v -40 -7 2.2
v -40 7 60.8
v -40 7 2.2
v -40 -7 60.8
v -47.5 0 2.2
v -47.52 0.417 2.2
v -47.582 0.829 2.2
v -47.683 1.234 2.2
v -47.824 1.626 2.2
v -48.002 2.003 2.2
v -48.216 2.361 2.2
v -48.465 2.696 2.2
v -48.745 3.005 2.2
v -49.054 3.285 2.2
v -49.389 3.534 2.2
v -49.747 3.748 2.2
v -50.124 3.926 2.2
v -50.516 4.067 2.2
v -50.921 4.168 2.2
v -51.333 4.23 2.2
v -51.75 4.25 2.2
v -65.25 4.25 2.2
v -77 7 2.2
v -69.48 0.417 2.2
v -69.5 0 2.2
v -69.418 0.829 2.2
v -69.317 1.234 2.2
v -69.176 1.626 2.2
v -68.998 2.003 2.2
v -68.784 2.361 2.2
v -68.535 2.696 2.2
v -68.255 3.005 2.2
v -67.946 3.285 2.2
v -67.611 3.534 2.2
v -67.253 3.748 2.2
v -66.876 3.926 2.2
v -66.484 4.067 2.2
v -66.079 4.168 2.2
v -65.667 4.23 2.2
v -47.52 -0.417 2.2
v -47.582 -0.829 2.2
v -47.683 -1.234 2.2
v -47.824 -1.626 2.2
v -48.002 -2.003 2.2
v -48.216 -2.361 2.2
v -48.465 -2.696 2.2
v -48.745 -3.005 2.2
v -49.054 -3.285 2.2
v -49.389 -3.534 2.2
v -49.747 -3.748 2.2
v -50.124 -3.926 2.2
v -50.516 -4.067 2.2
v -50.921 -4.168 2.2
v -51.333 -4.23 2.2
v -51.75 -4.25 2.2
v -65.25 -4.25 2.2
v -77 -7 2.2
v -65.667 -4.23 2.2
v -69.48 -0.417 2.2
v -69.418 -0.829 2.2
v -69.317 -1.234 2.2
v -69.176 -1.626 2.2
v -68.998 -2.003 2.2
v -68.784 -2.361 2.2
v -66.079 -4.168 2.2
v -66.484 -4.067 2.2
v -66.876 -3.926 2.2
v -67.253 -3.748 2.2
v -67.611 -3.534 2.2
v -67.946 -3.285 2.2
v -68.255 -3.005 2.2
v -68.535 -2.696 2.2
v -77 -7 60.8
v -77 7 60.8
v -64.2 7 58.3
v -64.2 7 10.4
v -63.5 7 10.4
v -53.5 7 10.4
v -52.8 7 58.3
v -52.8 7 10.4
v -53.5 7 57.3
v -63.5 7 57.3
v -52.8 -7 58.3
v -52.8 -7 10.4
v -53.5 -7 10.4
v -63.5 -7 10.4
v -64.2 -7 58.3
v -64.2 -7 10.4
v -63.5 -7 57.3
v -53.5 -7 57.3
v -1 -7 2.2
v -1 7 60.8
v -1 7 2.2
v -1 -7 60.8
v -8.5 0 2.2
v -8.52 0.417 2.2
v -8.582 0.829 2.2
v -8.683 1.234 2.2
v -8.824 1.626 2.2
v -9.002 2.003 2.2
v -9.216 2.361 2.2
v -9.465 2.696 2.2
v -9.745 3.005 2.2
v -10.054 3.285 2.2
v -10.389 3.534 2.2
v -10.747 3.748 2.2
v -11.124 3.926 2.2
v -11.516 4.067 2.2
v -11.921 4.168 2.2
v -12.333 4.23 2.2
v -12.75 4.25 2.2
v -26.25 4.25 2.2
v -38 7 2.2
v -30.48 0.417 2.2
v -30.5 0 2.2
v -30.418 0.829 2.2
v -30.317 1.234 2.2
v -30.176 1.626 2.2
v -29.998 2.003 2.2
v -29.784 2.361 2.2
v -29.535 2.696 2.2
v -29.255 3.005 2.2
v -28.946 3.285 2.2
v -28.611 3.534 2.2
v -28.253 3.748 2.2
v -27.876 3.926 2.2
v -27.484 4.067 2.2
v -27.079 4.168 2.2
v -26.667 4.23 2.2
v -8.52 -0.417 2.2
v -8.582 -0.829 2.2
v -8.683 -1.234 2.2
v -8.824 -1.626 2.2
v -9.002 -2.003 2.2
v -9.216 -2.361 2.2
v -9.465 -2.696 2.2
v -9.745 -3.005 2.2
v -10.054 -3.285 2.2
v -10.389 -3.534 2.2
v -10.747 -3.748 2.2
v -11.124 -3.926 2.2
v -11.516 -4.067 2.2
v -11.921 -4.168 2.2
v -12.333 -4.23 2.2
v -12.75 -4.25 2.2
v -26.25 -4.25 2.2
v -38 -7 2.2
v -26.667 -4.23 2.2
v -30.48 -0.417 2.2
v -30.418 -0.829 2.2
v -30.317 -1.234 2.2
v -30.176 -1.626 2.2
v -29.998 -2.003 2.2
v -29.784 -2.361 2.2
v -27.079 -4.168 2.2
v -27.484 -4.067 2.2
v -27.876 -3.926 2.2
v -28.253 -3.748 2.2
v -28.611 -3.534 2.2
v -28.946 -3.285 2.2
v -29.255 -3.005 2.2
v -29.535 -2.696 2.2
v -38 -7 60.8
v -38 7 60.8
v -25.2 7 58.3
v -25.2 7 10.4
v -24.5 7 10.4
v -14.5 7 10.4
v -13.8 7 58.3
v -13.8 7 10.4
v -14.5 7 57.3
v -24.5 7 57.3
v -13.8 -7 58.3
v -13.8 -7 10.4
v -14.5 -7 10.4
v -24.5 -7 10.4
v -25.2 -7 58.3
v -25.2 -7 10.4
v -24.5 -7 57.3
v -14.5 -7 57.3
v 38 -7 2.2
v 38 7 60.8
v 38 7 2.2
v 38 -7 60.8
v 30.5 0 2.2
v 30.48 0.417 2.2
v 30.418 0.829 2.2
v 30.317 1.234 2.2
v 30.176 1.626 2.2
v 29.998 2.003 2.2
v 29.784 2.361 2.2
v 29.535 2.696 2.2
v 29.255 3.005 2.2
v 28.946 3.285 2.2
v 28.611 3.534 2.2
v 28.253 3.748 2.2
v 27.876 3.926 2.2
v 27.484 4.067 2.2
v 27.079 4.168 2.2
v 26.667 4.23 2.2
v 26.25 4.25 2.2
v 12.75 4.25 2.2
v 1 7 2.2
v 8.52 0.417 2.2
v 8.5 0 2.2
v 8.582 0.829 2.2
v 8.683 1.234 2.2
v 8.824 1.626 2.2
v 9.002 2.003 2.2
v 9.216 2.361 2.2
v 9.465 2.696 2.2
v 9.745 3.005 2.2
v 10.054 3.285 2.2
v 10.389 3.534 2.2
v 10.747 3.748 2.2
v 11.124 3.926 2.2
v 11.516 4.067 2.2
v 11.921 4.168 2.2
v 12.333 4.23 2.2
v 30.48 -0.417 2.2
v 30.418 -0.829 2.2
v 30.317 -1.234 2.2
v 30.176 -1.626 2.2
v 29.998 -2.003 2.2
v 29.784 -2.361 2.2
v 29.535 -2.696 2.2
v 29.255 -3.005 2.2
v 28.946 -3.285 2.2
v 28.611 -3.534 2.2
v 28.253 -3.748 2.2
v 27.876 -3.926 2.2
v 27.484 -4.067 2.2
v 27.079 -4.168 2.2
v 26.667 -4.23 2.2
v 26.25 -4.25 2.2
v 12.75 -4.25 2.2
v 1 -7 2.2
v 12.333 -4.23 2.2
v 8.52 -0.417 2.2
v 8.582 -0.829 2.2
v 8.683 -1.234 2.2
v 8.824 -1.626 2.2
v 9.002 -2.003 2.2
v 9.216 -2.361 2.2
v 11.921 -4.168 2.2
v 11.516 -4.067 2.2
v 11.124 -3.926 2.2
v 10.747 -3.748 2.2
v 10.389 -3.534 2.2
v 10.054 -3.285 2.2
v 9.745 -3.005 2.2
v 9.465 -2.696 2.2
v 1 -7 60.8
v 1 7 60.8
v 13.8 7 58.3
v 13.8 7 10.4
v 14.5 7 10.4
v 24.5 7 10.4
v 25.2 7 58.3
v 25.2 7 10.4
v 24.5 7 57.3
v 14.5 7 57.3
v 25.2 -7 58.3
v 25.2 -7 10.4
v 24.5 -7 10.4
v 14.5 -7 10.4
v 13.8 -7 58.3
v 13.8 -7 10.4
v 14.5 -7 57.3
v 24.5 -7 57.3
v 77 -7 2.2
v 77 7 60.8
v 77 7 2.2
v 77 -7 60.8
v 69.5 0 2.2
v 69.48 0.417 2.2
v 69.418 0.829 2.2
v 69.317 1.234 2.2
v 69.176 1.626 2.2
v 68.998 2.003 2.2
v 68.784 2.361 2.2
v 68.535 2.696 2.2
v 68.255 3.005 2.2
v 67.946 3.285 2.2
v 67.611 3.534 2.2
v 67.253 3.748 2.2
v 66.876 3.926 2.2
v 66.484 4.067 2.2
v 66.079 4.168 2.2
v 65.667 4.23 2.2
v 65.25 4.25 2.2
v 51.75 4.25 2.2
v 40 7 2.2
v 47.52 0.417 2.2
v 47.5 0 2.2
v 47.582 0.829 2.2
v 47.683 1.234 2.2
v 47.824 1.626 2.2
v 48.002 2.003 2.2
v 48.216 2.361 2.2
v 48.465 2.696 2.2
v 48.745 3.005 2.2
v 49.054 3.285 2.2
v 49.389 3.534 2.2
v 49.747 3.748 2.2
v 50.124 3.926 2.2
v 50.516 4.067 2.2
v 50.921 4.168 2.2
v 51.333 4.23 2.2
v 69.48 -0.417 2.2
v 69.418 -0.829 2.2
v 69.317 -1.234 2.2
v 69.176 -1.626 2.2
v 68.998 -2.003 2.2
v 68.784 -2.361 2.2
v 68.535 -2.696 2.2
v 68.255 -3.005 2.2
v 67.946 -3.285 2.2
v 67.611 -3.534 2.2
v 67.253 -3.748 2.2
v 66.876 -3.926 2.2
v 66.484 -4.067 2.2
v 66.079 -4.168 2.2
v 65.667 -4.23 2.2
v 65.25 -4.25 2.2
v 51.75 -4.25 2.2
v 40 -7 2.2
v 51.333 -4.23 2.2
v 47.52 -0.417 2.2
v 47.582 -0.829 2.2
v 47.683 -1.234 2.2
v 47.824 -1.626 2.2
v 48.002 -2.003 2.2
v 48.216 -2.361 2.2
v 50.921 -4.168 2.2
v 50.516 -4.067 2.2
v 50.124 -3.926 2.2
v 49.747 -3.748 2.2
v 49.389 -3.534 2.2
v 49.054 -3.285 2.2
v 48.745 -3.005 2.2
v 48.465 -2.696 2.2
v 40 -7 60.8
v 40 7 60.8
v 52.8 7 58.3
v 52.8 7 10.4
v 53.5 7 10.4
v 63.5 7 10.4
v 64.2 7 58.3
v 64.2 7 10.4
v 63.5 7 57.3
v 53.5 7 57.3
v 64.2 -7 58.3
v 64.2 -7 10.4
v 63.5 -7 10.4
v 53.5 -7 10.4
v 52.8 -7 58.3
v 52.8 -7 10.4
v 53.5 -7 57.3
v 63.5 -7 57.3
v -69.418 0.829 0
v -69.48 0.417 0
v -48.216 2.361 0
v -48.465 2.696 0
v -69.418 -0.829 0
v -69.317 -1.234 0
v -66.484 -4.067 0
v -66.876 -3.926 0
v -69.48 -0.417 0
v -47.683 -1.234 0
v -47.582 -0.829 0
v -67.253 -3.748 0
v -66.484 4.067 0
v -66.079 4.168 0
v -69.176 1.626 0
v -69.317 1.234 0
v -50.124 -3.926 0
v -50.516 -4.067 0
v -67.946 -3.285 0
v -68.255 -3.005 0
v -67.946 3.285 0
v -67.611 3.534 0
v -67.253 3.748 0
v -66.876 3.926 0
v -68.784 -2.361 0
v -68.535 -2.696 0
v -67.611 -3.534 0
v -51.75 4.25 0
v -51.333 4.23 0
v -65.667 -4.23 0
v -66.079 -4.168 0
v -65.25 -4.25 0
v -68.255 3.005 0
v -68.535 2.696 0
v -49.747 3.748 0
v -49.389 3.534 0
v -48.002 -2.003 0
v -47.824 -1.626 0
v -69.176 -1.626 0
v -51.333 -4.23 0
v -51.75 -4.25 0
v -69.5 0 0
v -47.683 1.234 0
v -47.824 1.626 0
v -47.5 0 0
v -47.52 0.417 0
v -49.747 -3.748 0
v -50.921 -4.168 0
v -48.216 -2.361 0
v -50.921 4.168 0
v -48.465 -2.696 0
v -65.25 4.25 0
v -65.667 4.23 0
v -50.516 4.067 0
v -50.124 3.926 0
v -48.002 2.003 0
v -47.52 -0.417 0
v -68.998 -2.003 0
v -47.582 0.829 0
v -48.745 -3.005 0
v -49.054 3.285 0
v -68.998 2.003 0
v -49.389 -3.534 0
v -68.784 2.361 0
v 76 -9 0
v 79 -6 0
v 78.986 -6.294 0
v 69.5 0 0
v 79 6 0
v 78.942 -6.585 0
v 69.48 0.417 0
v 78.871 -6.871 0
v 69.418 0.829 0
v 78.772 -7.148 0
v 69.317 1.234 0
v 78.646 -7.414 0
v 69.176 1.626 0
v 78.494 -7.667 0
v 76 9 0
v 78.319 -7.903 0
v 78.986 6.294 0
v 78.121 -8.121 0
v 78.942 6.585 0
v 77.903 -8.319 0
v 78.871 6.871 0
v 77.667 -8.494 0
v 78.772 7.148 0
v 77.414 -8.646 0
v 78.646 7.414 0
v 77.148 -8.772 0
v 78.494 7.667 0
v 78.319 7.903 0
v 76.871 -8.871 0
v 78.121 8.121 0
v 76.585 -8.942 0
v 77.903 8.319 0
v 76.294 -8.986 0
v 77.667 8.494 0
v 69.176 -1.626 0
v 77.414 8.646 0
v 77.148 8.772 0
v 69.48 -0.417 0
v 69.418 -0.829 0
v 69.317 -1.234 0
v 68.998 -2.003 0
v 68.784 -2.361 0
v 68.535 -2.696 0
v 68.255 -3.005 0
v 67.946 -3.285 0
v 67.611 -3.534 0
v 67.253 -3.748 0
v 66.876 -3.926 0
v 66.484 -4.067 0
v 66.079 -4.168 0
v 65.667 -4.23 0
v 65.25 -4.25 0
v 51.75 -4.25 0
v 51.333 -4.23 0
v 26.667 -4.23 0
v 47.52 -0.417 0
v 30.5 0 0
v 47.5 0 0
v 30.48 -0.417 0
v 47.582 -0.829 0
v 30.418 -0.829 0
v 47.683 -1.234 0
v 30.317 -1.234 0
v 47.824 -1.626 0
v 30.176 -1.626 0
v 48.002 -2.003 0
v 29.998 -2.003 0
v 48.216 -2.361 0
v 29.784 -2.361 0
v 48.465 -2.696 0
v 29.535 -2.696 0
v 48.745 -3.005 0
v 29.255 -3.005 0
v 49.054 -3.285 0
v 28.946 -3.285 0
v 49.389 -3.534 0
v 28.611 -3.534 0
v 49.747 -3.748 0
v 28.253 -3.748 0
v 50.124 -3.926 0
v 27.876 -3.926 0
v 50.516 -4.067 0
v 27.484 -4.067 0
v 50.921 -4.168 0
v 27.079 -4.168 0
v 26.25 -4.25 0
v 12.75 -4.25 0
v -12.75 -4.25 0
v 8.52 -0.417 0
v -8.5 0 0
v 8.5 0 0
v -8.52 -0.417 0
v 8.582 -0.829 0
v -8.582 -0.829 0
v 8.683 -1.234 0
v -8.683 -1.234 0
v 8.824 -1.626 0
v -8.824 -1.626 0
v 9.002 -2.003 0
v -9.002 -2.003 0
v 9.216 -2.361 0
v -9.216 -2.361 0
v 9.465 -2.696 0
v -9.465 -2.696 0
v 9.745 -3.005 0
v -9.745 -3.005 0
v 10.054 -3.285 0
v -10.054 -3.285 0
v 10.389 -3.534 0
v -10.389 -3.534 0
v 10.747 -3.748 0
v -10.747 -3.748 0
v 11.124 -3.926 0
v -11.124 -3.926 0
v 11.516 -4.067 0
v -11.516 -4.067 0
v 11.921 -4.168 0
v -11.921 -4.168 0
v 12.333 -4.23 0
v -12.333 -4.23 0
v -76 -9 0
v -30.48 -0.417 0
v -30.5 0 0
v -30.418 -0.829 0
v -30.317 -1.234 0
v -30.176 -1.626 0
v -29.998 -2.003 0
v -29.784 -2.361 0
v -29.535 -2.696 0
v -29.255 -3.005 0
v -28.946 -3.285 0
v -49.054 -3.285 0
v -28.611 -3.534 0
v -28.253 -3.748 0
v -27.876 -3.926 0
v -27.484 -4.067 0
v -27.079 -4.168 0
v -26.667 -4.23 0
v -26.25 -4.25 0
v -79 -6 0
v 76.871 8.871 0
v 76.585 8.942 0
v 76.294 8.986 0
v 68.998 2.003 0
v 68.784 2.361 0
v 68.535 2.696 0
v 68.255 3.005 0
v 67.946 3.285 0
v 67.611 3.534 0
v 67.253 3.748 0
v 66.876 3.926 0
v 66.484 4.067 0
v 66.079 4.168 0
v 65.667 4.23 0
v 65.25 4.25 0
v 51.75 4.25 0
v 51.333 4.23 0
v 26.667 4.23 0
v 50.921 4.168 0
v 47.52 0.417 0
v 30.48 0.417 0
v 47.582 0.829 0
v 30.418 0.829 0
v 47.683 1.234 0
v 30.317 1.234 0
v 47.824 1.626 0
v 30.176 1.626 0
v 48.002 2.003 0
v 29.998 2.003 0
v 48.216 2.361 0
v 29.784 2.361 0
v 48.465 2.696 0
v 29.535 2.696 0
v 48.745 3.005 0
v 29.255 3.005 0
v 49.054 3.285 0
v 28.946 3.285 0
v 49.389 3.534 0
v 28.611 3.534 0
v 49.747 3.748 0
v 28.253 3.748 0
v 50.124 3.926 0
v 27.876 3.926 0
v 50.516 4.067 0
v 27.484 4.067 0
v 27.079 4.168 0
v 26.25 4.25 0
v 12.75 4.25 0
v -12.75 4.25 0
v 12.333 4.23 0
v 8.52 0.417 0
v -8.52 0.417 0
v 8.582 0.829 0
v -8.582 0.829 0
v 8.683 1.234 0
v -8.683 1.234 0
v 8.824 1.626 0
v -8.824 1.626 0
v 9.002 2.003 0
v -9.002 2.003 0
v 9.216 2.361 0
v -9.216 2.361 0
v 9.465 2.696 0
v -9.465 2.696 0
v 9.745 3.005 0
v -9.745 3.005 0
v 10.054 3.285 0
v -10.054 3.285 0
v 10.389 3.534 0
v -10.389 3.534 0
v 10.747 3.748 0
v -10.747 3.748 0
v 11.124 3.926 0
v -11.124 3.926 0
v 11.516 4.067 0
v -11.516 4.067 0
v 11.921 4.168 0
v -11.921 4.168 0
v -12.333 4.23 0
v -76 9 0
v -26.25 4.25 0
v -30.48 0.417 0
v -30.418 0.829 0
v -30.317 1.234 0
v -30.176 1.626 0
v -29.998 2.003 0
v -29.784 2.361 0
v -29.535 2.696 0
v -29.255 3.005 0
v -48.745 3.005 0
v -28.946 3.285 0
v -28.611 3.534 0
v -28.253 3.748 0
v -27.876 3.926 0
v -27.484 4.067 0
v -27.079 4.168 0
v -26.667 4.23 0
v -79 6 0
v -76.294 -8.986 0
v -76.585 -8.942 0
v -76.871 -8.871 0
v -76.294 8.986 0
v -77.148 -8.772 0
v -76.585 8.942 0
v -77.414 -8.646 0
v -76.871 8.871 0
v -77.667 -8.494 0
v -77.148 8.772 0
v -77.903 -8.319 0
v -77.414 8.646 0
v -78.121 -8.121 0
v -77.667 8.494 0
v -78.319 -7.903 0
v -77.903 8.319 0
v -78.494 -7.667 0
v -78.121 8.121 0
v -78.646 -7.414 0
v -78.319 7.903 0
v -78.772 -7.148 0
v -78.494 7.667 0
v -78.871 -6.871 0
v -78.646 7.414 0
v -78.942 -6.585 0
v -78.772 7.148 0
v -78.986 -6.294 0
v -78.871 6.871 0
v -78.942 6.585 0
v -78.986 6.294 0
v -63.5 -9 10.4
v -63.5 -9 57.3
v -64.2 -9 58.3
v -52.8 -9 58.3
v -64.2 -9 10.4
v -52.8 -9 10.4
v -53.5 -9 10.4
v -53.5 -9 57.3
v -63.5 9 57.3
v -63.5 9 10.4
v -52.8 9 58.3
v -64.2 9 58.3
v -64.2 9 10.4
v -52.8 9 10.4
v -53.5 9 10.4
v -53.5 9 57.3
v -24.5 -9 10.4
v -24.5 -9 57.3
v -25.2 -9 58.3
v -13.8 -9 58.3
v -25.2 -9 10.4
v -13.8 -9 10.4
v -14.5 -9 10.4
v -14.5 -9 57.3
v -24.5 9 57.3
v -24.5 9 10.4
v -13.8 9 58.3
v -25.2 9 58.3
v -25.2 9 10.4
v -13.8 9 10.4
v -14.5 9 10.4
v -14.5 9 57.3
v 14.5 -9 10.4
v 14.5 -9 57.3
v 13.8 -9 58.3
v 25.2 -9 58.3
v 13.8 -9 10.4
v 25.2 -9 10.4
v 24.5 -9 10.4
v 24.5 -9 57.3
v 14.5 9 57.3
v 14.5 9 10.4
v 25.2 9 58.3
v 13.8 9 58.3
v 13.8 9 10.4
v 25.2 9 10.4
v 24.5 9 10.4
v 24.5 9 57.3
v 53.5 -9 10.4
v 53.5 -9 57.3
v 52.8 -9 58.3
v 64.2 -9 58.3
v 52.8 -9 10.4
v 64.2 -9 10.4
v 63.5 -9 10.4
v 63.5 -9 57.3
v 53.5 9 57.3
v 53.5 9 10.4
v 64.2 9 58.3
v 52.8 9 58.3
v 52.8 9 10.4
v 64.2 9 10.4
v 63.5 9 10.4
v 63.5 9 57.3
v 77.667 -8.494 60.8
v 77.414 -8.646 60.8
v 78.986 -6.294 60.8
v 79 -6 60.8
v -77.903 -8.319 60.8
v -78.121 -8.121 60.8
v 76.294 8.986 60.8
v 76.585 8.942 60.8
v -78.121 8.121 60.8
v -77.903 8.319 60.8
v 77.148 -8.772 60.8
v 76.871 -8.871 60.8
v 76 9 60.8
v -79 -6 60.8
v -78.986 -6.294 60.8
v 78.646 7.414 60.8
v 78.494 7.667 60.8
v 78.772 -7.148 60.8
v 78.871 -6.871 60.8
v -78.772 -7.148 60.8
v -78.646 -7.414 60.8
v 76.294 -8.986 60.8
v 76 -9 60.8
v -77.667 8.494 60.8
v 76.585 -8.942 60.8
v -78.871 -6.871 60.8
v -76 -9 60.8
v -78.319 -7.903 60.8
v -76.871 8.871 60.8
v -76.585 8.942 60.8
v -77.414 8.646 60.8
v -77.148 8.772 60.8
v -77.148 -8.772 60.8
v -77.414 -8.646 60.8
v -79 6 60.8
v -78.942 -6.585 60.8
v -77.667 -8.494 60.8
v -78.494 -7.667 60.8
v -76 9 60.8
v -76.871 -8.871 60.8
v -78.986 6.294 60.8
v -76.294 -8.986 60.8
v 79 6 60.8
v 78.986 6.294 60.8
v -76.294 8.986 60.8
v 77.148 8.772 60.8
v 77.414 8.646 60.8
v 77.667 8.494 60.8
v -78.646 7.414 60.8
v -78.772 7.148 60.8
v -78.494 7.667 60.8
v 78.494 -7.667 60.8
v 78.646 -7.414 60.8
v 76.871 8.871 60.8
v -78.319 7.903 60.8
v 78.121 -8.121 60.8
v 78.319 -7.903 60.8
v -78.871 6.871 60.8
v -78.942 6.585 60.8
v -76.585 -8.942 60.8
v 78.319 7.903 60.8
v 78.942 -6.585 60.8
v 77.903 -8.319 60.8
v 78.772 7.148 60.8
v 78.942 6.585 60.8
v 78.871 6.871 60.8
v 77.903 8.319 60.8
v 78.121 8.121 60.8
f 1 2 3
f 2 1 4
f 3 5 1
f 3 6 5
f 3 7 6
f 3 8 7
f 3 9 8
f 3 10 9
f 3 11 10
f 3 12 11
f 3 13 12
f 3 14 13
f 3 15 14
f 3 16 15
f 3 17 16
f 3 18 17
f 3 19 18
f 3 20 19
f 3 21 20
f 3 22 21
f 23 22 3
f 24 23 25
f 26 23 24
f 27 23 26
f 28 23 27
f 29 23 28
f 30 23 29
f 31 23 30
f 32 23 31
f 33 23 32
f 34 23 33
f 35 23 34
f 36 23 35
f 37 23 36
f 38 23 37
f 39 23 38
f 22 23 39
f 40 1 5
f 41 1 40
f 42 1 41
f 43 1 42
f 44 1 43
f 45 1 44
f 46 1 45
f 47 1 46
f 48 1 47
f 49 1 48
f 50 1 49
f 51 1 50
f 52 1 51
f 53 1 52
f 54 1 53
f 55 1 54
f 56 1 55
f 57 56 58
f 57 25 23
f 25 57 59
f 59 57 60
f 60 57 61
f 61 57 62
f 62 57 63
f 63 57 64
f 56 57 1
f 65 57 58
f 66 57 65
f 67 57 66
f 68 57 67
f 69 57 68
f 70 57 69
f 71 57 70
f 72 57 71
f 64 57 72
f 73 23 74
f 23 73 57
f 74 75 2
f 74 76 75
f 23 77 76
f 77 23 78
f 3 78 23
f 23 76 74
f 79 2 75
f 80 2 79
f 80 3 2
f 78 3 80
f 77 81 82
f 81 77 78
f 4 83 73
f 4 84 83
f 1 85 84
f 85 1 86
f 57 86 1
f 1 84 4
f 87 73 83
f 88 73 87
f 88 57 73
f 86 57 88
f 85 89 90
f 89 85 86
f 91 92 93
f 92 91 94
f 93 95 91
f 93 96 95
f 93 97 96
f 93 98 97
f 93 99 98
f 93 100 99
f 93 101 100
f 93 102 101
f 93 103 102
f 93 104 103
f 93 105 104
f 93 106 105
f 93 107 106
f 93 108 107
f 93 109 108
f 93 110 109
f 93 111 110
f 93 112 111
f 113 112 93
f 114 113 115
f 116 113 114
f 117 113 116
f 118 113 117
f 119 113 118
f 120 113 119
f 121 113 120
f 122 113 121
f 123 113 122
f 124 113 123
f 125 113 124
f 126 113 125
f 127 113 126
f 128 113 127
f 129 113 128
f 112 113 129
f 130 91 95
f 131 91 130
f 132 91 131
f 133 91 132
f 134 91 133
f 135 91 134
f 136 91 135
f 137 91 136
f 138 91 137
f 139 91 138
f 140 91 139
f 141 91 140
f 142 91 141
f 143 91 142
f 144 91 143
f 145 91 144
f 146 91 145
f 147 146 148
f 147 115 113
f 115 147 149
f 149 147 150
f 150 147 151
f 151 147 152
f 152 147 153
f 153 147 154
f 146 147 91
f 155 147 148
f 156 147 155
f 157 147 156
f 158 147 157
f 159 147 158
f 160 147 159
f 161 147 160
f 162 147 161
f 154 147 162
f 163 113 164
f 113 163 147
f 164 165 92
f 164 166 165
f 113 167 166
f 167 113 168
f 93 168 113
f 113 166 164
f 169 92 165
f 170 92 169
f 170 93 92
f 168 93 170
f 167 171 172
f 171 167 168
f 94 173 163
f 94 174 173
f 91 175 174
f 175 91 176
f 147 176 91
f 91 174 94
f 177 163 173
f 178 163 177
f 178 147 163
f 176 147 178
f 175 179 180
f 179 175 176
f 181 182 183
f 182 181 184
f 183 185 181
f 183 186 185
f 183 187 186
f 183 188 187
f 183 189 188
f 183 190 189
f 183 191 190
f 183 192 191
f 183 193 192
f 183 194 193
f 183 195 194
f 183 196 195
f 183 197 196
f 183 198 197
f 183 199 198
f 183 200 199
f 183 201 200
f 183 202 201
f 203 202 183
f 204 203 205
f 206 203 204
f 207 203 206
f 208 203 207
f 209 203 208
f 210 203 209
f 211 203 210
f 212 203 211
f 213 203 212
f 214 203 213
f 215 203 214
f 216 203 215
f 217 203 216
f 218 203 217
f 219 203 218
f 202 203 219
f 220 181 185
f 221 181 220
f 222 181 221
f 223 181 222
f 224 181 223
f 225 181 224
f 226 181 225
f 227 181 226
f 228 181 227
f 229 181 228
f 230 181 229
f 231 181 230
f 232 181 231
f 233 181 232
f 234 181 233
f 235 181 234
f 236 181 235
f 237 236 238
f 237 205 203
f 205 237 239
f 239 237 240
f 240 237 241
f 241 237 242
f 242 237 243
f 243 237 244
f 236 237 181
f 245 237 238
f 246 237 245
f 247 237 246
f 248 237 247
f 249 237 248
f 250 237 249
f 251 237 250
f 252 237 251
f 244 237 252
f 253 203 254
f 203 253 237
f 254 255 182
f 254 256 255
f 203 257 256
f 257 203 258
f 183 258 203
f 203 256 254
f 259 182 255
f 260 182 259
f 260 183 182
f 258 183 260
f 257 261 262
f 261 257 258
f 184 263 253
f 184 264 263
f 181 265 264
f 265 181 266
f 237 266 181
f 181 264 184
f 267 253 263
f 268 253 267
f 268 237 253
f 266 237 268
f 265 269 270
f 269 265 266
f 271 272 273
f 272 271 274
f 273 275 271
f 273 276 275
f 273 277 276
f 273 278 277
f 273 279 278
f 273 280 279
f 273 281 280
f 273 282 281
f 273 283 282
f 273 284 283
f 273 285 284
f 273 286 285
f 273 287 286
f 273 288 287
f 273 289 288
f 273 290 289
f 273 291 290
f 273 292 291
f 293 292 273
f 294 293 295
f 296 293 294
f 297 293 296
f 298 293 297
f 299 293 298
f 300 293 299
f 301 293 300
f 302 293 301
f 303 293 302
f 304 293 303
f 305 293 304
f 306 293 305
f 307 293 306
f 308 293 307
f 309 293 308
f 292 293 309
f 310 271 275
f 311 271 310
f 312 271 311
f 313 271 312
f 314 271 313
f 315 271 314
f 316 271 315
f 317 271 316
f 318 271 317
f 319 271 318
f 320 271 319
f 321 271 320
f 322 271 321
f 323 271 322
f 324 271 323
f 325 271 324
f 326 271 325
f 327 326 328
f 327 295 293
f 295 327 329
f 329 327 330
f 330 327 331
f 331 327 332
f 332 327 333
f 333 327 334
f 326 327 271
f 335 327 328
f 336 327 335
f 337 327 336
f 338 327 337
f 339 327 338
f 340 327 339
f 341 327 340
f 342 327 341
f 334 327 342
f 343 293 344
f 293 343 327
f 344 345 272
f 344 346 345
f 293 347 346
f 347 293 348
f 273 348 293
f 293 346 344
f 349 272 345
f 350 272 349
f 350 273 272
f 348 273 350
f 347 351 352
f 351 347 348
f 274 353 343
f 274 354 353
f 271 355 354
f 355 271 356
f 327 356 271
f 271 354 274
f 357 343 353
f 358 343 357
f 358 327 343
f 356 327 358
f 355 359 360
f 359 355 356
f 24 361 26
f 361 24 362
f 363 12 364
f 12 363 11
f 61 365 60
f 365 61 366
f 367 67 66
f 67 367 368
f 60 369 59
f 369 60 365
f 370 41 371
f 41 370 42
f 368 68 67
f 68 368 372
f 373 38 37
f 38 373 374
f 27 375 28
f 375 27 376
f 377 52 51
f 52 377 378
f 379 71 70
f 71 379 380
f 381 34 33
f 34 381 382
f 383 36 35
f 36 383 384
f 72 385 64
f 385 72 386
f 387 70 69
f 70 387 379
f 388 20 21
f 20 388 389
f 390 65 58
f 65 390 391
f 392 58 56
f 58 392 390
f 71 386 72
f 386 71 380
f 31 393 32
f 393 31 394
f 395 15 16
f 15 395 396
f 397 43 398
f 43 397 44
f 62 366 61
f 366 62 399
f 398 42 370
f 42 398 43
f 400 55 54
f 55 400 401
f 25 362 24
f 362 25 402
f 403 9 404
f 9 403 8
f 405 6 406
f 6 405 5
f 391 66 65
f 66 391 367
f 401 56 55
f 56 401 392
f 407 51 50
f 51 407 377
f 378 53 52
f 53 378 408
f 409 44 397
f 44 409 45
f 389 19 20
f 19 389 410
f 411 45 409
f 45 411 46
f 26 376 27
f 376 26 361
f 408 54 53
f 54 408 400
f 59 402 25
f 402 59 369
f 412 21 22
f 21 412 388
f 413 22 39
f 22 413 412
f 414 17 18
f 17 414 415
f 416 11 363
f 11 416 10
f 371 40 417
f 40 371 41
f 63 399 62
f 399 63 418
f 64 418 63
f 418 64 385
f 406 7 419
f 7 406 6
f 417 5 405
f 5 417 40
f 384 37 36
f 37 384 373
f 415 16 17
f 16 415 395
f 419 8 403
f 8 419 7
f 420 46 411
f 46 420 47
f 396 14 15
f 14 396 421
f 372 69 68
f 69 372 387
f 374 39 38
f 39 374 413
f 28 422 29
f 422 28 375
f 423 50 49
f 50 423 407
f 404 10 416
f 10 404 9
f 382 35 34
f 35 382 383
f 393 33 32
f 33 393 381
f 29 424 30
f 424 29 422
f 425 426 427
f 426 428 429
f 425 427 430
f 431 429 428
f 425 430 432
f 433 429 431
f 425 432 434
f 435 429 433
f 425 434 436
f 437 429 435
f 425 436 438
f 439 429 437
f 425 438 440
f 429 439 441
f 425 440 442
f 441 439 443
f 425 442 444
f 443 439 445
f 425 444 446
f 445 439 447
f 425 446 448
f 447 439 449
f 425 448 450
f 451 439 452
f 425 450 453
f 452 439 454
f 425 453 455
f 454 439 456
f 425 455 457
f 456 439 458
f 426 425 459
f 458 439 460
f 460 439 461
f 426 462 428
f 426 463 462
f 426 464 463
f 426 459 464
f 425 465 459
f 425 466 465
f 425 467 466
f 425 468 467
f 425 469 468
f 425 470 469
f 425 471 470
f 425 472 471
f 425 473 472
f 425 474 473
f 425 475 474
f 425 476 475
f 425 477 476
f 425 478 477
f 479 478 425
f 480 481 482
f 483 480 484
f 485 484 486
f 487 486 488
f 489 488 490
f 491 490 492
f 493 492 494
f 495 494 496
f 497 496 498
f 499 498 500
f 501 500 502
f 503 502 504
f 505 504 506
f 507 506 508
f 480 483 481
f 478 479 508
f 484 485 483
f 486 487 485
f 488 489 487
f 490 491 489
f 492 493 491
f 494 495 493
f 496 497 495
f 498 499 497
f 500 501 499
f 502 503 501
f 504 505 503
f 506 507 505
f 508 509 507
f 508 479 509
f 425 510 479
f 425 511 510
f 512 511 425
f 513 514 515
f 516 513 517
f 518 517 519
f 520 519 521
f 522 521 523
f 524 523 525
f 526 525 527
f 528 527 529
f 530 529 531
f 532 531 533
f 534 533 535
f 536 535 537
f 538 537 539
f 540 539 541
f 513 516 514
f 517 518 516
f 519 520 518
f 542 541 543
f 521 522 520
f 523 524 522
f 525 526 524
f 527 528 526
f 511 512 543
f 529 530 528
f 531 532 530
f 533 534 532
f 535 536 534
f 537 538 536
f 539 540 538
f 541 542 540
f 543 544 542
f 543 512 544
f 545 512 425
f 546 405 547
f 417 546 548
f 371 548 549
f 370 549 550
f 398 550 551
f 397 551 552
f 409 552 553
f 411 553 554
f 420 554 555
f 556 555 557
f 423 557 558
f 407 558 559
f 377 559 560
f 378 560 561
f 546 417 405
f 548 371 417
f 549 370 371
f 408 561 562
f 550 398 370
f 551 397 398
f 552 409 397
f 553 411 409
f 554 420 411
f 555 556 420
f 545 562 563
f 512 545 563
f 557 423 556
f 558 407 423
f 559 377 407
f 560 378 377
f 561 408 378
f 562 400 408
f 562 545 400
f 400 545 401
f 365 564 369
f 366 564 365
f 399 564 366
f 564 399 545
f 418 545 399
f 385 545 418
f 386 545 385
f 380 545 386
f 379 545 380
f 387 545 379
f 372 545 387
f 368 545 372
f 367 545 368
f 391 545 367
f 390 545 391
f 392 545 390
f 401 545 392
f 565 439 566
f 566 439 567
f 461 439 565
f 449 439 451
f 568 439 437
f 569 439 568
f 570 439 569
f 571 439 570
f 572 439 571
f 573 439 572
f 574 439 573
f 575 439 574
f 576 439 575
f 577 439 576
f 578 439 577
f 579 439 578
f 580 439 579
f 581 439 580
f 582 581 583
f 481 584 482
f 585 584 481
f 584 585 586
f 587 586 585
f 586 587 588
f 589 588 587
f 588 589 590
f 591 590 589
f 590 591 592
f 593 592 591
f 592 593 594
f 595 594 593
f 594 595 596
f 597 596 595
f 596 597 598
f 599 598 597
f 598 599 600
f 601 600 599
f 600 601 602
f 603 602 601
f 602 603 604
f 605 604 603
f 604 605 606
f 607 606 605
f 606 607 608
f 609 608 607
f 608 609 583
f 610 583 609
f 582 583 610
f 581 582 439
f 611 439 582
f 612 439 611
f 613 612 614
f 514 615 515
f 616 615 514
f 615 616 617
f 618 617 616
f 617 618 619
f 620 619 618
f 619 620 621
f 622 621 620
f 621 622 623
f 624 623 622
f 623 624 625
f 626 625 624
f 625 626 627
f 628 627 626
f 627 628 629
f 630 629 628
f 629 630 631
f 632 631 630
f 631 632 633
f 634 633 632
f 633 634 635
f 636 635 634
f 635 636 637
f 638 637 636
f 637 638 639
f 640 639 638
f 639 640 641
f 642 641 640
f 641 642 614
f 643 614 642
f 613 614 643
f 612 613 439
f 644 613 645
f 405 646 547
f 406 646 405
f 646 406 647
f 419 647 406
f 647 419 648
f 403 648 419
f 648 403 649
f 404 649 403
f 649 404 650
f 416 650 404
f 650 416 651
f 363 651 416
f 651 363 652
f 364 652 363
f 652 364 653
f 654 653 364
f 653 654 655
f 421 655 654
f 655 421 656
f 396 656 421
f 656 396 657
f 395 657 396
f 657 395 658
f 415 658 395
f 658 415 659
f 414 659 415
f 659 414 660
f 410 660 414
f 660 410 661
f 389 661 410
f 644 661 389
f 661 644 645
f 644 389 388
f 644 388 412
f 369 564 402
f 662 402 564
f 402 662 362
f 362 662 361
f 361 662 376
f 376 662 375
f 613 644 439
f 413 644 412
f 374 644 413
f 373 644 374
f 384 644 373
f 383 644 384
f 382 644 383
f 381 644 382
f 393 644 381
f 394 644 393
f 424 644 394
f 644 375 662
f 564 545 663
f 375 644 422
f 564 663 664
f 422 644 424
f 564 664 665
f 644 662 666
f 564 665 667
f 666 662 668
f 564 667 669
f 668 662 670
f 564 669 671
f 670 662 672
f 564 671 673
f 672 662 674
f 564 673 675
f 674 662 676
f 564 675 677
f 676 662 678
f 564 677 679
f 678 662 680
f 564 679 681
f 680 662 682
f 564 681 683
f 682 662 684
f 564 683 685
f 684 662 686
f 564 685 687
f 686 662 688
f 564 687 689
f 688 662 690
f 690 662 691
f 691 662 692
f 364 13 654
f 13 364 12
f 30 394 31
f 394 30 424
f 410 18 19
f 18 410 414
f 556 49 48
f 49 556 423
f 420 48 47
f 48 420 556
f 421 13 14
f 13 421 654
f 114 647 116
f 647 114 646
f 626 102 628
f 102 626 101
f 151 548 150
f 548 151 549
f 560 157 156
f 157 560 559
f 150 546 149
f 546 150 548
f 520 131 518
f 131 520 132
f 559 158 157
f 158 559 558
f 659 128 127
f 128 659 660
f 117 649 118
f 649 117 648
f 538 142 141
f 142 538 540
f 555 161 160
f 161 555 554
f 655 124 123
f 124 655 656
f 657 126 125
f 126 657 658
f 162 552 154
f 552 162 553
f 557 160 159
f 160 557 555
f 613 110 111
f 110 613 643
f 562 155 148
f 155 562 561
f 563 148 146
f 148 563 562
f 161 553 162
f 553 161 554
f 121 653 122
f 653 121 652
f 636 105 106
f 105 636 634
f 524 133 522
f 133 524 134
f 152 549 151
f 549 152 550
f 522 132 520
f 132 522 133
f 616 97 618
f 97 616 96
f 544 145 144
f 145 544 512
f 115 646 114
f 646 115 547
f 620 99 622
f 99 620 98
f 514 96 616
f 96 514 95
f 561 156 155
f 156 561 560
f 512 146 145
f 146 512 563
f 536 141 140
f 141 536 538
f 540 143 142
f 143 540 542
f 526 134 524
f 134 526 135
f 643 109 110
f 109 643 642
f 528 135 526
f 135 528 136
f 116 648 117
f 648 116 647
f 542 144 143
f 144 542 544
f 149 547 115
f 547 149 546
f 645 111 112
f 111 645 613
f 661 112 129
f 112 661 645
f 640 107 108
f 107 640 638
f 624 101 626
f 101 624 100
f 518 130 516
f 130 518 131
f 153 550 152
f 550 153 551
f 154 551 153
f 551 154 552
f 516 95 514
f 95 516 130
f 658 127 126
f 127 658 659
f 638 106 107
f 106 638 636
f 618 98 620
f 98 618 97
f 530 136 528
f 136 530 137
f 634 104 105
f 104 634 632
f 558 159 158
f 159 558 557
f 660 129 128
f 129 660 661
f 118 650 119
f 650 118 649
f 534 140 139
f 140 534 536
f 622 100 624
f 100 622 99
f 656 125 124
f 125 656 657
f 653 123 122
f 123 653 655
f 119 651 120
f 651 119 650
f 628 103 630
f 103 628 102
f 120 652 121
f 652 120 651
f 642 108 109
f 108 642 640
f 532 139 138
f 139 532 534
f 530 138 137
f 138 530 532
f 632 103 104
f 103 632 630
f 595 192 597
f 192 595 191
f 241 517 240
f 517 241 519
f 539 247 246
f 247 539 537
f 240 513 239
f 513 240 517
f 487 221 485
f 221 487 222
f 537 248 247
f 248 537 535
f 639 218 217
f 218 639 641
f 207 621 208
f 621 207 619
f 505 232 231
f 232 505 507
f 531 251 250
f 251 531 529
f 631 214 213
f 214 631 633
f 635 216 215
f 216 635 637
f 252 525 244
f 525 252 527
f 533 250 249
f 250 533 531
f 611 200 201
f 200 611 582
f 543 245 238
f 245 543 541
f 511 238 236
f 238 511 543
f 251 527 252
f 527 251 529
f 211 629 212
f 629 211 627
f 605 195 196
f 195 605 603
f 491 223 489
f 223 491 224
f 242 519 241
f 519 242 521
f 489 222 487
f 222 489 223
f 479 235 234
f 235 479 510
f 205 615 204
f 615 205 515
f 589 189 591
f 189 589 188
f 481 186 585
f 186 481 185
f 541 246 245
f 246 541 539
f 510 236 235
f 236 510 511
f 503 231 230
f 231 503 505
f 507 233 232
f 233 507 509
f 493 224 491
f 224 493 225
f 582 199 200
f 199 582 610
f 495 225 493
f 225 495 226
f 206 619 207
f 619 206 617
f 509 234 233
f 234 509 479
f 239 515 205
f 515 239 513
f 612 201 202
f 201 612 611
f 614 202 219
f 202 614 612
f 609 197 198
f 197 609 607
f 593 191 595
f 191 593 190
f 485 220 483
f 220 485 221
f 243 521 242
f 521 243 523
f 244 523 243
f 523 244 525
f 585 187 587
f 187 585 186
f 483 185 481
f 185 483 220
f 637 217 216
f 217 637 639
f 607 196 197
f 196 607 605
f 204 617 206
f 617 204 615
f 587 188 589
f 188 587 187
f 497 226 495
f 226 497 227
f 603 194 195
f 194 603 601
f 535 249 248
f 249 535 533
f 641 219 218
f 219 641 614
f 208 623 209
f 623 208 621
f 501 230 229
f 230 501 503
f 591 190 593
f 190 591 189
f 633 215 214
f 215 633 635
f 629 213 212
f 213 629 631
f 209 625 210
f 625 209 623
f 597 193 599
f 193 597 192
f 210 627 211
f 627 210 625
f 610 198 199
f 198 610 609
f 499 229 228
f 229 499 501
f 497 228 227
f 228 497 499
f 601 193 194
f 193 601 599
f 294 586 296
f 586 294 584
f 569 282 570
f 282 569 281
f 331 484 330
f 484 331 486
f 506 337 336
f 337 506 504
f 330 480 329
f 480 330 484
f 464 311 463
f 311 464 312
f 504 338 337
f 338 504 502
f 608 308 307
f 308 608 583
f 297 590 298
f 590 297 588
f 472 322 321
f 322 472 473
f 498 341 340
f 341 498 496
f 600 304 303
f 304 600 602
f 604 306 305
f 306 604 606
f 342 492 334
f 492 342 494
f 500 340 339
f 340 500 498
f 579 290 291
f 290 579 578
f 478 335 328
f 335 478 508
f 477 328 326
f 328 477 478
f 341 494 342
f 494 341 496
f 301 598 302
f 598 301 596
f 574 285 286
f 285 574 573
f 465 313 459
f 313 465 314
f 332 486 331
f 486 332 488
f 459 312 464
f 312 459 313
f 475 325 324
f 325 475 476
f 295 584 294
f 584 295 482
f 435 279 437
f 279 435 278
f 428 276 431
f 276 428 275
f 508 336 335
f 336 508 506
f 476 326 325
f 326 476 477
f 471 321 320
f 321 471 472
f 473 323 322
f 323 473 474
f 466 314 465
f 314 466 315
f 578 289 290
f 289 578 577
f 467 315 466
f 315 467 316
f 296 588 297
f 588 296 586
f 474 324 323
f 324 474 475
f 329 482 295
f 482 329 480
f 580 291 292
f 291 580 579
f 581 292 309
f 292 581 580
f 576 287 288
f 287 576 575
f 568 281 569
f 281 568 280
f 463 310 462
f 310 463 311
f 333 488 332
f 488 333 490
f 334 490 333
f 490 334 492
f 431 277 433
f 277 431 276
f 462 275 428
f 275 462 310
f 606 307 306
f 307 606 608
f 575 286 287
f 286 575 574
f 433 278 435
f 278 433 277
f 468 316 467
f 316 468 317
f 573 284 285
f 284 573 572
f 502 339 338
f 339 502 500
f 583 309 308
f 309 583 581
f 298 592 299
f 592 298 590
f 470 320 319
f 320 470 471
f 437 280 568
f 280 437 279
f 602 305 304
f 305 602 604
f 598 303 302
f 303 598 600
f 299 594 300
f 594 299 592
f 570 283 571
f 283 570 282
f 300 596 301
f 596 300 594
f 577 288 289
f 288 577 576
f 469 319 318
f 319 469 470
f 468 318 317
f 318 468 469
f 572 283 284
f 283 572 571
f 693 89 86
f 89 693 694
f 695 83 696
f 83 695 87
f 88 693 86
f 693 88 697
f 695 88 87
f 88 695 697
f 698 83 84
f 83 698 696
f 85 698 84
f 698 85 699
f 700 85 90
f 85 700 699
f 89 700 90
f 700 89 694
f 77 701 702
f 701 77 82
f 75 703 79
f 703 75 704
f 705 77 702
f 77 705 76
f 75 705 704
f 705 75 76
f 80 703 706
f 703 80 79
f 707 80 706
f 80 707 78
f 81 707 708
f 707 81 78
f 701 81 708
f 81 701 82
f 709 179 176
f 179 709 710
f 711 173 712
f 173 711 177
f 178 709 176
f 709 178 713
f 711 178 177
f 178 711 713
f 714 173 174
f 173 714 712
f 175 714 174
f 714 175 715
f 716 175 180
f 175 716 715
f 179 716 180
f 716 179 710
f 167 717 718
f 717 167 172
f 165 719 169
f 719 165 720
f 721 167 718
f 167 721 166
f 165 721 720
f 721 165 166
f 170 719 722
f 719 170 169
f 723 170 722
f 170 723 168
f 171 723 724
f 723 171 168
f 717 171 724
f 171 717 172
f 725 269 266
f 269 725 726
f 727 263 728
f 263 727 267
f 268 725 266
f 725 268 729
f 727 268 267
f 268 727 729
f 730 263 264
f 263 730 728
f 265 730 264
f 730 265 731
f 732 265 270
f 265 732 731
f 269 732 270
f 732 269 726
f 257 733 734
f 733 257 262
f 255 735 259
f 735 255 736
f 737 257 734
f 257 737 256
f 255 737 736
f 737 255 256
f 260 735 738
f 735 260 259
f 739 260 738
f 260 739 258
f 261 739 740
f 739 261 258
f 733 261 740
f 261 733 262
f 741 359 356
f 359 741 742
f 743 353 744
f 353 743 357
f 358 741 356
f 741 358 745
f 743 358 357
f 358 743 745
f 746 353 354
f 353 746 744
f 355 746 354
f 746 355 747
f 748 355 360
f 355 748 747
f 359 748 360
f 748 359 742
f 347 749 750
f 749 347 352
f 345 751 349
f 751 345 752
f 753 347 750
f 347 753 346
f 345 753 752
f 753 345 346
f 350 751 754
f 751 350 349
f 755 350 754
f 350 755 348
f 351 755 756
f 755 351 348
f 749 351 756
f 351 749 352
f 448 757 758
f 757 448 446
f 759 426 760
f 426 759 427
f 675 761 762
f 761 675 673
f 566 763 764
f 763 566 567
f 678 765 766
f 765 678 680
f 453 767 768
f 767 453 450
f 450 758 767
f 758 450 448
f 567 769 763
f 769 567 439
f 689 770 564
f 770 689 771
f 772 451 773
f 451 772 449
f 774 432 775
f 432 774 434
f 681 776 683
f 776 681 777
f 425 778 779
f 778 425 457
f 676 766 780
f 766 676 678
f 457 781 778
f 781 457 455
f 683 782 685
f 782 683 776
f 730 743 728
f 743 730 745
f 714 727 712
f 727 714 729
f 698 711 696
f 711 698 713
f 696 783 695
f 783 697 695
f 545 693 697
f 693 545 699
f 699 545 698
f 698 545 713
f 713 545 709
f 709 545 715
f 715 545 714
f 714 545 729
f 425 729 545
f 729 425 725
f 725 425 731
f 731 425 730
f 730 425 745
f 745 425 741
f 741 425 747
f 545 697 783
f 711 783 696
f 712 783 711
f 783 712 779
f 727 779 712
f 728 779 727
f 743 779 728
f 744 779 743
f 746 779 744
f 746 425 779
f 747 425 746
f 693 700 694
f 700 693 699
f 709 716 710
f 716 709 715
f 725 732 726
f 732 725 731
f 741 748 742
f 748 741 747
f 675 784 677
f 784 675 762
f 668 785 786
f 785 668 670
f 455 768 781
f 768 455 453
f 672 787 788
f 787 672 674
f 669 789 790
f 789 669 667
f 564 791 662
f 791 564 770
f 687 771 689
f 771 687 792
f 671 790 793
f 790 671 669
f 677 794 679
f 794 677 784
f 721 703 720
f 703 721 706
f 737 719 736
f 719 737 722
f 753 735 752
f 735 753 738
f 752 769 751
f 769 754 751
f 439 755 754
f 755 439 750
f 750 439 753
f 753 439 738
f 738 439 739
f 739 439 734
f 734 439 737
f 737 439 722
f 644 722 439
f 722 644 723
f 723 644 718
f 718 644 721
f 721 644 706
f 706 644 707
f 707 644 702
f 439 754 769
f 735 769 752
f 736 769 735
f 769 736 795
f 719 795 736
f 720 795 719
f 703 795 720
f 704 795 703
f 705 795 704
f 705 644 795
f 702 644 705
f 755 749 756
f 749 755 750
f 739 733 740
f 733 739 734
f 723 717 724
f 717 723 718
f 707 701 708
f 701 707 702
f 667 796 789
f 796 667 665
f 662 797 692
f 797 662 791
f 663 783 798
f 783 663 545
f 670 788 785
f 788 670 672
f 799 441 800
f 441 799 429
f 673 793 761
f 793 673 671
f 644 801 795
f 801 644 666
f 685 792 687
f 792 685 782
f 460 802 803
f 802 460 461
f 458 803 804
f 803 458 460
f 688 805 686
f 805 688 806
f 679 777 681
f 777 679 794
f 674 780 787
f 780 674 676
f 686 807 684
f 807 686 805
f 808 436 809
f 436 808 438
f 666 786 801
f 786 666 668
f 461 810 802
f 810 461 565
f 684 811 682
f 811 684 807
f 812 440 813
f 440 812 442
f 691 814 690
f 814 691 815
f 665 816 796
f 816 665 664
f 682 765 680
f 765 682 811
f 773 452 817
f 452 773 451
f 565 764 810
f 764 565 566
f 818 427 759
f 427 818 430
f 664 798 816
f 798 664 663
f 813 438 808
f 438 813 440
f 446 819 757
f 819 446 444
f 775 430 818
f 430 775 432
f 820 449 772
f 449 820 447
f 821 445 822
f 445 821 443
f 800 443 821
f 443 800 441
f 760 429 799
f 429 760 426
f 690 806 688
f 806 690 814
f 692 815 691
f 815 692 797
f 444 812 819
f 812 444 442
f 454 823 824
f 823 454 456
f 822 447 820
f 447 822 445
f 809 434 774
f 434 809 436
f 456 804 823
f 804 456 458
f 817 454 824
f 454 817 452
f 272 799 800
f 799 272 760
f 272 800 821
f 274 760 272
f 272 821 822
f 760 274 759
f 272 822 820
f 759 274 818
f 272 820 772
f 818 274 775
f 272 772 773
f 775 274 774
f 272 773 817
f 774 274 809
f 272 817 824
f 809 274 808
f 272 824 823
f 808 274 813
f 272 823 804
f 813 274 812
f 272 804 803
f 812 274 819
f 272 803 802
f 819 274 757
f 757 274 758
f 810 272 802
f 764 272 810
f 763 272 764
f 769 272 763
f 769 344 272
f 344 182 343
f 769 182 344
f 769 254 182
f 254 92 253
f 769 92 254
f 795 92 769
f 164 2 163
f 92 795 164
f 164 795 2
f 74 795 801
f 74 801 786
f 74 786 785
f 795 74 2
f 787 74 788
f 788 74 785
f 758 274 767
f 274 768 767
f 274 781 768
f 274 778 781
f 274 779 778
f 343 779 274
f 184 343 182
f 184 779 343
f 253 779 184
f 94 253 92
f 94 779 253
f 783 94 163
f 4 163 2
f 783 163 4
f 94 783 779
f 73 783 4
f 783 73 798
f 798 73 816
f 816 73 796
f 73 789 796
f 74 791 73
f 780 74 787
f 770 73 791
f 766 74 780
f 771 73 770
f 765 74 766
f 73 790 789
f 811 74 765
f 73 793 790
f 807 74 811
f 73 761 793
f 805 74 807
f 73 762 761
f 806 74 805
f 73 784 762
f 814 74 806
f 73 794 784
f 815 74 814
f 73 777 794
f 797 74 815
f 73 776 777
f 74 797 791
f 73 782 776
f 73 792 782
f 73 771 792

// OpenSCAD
// 4x Olympus BLS-5 battery case (single-piece, 3D printable)
// Battery: 56 x 36 x 13 mm
// Slots arranged linearly 4x1; batteries stand on smallest face (36x13 footprint)

$fn = 64;

// -------------------- Parameters --------------------
N = 4;

bat_h = 56;          // vertical (Z)
bat_w = 36;          // along X (row direction)
bat_d = 13;          // along Y (depth)

clear_xy = 0.50;     // clearance per side
clear_z  = 0.60;

inner_w = bat_w + 2*clear_xy;
inner_d = bat_d + 2*clear_xy;
inner_h = bat_h + clear_z;

wall    = 2.0;       // outer wall thickness
divider = 2.0;       // thickness between slots
floor_t = 2.2;       // floor thickness

top_extra = 2.0;     // extra height above battery
case_h = floor_t + inner_h + top_extra;

outer_r = 3.0;       // outer corner radius

// Finger hole (per slot)
finger_len = 22;     // along X
finger_w   = 8.5;    // along Y

// Snap tongue + nub (per slot, two sides)
clip_wx    = 10.0;   // tongue width along X
clip_gap   = 0.70;   // gap around tongue cuts
clip_baseZ = 2.2;    // uncut base height of tongue
clip_z0    = floor_t + 6.0;          // tongue start height
clip_h     = inner_h - 6.5;          // tongue height

nub_in     = 0.55;   // nub intrusion into cavity
nub_h      = 1.7;    // nub height
nub_wx     = 8.0;    // nub width along X
nub_z      = floor_t + inner_h - 7.0; // nub vertical placement

// -------------------- Derived dimensions --------------------
case_len = N*inner_w + (N-1)*divider + 2*wall;
case_dep = inner_d + 2*wall;

function slot_xc(i) = -case_len/2 + wall + inner_w/2 + i*(inner_w + divider);

// -------------------- Helpers --------------------
module rounded_box_xy(x, y, z, r){
    // Centered in X/Y, bottom at Z=0
    linear_extrude(height=z)
        offset(r=r)
            square([x-2*r, y-2*r], center=true);
}

module capsule2d(len, wid){
    // Centered capsule, major axis along X
    r = wid/2;
    hull(){
        translate([-(len/2-r),0]) circle(r=r);
        translate([ +(len/2-r),0]) circle(r=r);
    }
}

module nub_wedge_x(width_x, protrude_y, height_z){
    // Wedge whose base lies on Y=0 plane and protrudes +Y. Extruded along X.
    rotate([0,90,0])
        linear_extrude(height=width_x, center=true, convexity=5)
            polygon(points=[
                [0,0],
                [0,height_z],
                [protrude_y,height_z],
                [protrude_y,height_z*0.62]
            ]);
}

module clip_u_slot(xc, side){
    // side: -1 for front wall (y positive inner wall), +1 for back wall (y negative inner wall)
    // Cuts a through-wall U-slot leaving a tongue that can flex outward.
    y_wall_c = side*(inner_d/2 + wall/2);

    cut_h = max(0.1, clip_h - clip_baseZ);
    z_c = clip_z0 + clip_baseZ + cut_h/2;

    y_thru = wall + 0.8; // ensure cut goes fully through the wall

    // Side cuts (left/right)
    translate([xc - clip_wx/2 - clip_gap/2, y_wall_c, z_c])
        cube([clip_gap, y_thru, cut_h], center=true);
    translate([xc + clip_wx/2 + clip_gap/2, y_wall_c, z_c])
        cube([clip_gap, y_thru, cut_h], center=true);

    // Top cut (severs top connection; slight overlap trims tongue top)
    top_cut_h = 1.0;
    translate([xc, y_wall_c, clip_z0 + clip_h - top_cut_h/2])
        cube([clip_wx + 2*clip_gap, y_thru, top_cut_h], center=true);
}

module clip_nub(xc, side){
    // side: -1 => nub protrudes toward -Y (from front wall at y=+inner_d/2)
    // side: +1 => nub protrudes toward +Y (from back wall at y=-inner_d/2)
    y_inner = side*(inner_d/2);

    translate([xc, y_inner, nub_z]){
        if(side == 1) {
            nub_wedge_x(nub_wx, nub_in, nub_h);
        } else {
            mirror([0,1,0]) nub_wedge_x(nub_wx, nub_in, nub_h);
        }
    }
}

// -------------------- Model --------------------
module battery_case(){
    union(){
        difference(){
            // Outer body
            rounded_box_xy(case_len, case_dep, case_h, outer_r);

            // Cavities (4 slots)
            for(i=[0:N-1]){
                xc = slot_xc(i);
                translate([xc - inner_w/2, -inner_d/2, floor_t])
                    cube([inner_w, inner_d, case_h], center=false);
            }

            // Finger push holes (one per slot), through the floor
            for(i=[0:N-1]){
                xc = slot_xc(i);
                translate([xc, 0, 0])
                    linear_extrude(height=floor_t + 0.4)
                        capsule2d(finger_len, finger_w);
            }

            // U-slots that create the snap tongues (front/back wall per slot)
            for(i=[0:N-1]){
                xc = slot_xc(i);
                clip_u_slot(xc, -1);
                clip_u_slot(xc,  1);
            }
        }

        // Add snap nubs on both long sides of each slot
        for(i=[0:N-1]){
            xc = slot_xc(i);
            clip_nub(xc, -1);
            clip_nub(xc,  1);
        }
    }
}

battery_case();
